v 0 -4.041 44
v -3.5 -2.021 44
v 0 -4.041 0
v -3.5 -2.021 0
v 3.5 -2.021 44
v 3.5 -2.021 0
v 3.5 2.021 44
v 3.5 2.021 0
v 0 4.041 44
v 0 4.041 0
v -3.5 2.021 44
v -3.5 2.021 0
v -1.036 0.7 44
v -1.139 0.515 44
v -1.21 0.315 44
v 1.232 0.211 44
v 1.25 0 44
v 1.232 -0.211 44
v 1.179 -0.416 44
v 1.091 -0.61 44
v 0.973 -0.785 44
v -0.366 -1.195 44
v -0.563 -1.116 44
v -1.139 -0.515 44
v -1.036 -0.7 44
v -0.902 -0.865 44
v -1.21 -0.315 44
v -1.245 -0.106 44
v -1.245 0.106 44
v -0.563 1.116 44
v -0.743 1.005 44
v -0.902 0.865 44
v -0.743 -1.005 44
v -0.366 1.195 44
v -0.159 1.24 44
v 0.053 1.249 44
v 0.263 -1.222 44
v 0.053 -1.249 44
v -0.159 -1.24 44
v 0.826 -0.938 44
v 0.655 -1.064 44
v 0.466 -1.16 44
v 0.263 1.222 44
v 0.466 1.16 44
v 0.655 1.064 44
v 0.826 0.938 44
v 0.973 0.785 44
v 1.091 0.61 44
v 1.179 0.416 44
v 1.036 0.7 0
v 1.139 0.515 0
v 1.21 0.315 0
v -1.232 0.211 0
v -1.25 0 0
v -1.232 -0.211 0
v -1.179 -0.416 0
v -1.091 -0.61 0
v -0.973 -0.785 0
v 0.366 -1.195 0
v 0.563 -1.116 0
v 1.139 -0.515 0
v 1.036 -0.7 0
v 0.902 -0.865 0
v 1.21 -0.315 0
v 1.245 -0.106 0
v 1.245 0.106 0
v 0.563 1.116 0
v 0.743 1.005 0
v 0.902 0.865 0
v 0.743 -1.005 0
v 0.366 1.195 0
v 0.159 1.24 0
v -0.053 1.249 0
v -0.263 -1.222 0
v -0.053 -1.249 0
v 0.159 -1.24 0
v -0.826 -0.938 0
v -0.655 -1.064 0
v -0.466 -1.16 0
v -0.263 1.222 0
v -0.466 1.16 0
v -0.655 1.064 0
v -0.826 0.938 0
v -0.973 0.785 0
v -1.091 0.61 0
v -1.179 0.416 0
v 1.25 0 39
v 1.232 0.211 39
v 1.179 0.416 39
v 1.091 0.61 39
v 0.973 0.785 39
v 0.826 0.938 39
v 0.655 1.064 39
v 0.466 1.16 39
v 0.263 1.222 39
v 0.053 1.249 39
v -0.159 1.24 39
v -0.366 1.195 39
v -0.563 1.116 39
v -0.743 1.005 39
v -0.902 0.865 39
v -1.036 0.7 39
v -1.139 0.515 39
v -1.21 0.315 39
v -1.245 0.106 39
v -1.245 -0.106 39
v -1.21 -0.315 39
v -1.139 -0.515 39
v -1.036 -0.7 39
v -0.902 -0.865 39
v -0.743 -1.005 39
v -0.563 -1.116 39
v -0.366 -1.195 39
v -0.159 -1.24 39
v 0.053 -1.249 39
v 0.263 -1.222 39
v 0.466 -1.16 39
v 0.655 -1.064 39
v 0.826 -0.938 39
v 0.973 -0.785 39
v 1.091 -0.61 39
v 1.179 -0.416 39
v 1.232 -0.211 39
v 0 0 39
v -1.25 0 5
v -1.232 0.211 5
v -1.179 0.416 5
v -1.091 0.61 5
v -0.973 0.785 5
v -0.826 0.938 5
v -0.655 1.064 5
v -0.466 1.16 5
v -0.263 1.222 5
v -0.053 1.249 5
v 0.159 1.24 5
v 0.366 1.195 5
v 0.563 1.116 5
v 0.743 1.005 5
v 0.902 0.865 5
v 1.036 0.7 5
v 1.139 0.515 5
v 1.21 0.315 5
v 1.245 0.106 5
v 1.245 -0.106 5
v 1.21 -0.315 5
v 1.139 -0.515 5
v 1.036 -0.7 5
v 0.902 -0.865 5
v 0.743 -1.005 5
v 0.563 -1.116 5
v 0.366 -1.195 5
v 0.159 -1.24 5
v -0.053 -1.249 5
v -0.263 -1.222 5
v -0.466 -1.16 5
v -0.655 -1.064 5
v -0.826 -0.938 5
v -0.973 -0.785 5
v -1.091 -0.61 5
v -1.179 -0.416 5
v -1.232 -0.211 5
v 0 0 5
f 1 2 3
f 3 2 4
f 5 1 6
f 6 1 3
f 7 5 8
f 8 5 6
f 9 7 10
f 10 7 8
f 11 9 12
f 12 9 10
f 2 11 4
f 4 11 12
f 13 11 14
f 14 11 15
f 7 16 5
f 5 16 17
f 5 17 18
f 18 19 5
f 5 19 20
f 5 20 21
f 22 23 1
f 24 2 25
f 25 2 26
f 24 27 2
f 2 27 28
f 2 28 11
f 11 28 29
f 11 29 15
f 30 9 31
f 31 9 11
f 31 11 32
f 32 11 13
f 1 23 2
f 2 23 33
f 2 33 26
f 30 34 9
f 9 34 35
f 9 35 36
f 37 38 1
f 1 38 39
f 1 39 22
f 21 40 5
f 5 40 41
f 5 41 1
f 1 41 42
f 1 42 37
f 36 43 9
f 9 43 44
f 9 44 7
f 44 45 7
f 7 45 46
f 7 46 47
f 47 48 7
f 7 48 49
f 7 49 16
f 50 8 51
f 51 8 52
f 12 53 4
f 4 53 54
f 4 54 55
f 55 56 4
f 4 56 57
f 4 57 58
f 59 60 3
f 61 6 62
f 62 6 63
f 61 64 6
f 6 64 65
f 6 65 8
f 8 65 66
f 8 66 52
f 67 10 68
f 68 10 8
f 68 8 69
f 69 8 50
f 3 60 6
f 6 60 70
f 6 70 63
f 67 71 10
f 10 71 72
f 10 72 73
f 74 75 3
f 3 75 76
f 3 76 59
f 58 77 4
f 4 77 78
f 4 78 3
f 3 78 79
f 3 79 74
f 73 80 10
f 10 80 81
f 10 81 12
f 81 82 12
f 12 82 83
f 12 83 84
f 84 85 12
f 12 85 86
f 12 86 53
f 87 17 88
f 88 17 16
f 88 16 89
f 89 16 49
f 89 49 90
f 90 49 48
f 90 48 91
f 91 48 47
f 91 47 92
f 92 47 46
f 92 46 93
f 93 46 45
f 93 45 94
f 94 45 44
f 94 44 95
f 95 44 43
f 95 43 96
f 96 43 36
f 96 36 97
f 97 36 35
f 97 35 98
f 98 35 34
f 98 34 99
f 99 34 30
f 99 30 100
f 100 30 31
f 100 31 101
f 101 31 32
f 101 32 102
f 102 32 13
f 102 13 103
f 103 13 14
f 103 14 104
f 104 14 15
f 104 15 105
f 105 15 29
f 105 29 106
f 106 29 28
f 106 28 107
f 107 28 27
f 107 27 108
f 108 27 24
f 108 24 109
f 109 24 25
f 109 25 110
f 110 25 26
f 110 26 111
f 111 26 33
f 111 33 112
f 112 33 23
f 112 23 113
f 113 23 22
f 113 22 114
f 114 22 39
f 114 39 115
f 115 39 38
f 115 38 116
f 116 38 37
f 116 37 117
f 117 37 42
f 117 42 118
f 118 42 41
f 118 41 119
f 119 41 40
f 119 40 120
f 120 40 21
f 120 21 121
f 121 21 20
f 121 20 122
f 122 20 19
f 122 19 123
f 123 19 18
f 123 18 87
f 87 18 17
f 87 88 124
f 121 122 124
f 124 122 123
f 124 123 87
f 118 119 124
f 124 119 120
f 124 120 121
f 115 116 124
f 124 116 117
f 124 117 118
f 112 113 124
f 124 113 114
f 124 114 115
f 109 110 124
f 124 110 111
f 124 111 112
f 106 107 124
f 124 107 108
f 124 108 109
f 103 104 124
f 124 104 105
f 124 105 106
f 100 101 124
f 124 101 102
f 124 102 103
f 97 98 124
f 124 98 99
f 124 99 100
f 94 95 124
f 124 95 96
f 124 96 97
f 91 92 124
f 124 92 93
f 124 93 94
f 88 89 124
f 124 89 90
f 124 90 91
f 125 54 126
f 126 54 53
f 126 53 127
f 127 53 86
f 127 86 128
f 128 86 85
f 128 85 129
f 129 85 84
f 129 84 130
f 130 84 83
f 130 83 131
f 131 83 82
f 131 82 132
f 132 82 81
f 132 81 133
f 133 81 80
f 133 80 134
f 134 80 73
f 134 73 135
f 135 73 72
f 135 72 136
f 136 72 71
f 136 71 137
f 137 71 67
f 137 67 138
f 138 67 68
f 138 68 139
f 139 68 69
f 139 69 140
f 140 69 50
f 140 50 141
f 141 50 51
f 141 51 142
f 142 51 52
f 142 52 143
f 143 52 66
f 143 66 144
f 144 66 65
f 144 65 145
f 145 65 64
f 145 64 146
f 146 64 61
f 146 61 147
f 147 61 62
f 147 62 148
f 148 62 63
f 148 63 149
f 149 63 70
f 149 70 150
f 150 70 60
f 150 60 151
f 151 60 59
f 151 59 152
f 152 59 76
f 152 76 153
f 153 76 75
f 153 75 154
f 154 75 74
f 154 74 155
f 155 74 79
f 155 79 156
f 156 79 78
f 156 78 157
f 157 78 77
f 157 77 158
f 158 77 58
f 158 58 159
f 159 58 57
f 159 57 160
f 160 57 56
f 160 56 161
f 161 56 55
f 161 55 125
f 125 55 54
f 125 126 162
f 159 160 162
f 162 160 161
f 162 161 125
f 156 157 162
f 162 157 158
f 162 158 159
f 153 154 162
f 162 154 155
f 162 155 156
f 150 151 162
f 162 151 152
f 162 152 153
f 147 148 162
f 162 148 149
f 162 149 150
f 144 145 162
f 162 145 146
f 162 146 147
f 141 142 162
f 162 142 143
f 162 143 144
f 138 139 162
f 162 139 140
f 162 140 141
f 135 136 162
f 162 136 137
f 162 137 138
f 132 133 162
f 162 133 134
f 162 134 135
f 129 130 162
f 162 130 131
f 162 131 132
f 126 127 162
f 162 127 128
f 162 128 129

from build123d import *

# Parameters (mm, degrees)
BOSS_EXTRUDE1_DEPTH = 44
SKETCH2_R           = 1.25
CUT_EXTRUDE1_DEPTH  = 5
SKETCH3_R           = 1.25
CUT_EXTRUDE2_DEPTH  = 5


with BuildPart() as part:
    # Sketch1 → Boss-Extrude1 (new body)
    with BuildSketch(Plane.XY):
        Polygon((0, -4.041451884), (3.5, -2.020725942), (3.5, 2.020725942), (0, 4.041451884), (-3.5, 2.020725942), (-3.5, -2.020725942), align=None)
    extrude(amount=BOSS_EXTRUDE1_DEPTH)

    # Sketch2 → Cut-Extrude1 (cut)
    with BuildSketch(Plane.XY.offset(44)):
        Circle(SKETCH2_R)
    extrude(amount=-CUT_EXTRUDE1_DEPTH, mode=Mode.SUBTRACT)

    # Sketch3 → Cut-Extrude2 (cut)
    with BuildSketch(Plane(origin=(0, 0, 0), x_dir=(-1, 0, 0), z_dir=(0, 0, -1))):
        Circle(SKETCH3_R)
    extrude(amount=-CUT_EXTRUDE2_DEPTH, mode=Mode.SUBTRACT)


solid = part.part
